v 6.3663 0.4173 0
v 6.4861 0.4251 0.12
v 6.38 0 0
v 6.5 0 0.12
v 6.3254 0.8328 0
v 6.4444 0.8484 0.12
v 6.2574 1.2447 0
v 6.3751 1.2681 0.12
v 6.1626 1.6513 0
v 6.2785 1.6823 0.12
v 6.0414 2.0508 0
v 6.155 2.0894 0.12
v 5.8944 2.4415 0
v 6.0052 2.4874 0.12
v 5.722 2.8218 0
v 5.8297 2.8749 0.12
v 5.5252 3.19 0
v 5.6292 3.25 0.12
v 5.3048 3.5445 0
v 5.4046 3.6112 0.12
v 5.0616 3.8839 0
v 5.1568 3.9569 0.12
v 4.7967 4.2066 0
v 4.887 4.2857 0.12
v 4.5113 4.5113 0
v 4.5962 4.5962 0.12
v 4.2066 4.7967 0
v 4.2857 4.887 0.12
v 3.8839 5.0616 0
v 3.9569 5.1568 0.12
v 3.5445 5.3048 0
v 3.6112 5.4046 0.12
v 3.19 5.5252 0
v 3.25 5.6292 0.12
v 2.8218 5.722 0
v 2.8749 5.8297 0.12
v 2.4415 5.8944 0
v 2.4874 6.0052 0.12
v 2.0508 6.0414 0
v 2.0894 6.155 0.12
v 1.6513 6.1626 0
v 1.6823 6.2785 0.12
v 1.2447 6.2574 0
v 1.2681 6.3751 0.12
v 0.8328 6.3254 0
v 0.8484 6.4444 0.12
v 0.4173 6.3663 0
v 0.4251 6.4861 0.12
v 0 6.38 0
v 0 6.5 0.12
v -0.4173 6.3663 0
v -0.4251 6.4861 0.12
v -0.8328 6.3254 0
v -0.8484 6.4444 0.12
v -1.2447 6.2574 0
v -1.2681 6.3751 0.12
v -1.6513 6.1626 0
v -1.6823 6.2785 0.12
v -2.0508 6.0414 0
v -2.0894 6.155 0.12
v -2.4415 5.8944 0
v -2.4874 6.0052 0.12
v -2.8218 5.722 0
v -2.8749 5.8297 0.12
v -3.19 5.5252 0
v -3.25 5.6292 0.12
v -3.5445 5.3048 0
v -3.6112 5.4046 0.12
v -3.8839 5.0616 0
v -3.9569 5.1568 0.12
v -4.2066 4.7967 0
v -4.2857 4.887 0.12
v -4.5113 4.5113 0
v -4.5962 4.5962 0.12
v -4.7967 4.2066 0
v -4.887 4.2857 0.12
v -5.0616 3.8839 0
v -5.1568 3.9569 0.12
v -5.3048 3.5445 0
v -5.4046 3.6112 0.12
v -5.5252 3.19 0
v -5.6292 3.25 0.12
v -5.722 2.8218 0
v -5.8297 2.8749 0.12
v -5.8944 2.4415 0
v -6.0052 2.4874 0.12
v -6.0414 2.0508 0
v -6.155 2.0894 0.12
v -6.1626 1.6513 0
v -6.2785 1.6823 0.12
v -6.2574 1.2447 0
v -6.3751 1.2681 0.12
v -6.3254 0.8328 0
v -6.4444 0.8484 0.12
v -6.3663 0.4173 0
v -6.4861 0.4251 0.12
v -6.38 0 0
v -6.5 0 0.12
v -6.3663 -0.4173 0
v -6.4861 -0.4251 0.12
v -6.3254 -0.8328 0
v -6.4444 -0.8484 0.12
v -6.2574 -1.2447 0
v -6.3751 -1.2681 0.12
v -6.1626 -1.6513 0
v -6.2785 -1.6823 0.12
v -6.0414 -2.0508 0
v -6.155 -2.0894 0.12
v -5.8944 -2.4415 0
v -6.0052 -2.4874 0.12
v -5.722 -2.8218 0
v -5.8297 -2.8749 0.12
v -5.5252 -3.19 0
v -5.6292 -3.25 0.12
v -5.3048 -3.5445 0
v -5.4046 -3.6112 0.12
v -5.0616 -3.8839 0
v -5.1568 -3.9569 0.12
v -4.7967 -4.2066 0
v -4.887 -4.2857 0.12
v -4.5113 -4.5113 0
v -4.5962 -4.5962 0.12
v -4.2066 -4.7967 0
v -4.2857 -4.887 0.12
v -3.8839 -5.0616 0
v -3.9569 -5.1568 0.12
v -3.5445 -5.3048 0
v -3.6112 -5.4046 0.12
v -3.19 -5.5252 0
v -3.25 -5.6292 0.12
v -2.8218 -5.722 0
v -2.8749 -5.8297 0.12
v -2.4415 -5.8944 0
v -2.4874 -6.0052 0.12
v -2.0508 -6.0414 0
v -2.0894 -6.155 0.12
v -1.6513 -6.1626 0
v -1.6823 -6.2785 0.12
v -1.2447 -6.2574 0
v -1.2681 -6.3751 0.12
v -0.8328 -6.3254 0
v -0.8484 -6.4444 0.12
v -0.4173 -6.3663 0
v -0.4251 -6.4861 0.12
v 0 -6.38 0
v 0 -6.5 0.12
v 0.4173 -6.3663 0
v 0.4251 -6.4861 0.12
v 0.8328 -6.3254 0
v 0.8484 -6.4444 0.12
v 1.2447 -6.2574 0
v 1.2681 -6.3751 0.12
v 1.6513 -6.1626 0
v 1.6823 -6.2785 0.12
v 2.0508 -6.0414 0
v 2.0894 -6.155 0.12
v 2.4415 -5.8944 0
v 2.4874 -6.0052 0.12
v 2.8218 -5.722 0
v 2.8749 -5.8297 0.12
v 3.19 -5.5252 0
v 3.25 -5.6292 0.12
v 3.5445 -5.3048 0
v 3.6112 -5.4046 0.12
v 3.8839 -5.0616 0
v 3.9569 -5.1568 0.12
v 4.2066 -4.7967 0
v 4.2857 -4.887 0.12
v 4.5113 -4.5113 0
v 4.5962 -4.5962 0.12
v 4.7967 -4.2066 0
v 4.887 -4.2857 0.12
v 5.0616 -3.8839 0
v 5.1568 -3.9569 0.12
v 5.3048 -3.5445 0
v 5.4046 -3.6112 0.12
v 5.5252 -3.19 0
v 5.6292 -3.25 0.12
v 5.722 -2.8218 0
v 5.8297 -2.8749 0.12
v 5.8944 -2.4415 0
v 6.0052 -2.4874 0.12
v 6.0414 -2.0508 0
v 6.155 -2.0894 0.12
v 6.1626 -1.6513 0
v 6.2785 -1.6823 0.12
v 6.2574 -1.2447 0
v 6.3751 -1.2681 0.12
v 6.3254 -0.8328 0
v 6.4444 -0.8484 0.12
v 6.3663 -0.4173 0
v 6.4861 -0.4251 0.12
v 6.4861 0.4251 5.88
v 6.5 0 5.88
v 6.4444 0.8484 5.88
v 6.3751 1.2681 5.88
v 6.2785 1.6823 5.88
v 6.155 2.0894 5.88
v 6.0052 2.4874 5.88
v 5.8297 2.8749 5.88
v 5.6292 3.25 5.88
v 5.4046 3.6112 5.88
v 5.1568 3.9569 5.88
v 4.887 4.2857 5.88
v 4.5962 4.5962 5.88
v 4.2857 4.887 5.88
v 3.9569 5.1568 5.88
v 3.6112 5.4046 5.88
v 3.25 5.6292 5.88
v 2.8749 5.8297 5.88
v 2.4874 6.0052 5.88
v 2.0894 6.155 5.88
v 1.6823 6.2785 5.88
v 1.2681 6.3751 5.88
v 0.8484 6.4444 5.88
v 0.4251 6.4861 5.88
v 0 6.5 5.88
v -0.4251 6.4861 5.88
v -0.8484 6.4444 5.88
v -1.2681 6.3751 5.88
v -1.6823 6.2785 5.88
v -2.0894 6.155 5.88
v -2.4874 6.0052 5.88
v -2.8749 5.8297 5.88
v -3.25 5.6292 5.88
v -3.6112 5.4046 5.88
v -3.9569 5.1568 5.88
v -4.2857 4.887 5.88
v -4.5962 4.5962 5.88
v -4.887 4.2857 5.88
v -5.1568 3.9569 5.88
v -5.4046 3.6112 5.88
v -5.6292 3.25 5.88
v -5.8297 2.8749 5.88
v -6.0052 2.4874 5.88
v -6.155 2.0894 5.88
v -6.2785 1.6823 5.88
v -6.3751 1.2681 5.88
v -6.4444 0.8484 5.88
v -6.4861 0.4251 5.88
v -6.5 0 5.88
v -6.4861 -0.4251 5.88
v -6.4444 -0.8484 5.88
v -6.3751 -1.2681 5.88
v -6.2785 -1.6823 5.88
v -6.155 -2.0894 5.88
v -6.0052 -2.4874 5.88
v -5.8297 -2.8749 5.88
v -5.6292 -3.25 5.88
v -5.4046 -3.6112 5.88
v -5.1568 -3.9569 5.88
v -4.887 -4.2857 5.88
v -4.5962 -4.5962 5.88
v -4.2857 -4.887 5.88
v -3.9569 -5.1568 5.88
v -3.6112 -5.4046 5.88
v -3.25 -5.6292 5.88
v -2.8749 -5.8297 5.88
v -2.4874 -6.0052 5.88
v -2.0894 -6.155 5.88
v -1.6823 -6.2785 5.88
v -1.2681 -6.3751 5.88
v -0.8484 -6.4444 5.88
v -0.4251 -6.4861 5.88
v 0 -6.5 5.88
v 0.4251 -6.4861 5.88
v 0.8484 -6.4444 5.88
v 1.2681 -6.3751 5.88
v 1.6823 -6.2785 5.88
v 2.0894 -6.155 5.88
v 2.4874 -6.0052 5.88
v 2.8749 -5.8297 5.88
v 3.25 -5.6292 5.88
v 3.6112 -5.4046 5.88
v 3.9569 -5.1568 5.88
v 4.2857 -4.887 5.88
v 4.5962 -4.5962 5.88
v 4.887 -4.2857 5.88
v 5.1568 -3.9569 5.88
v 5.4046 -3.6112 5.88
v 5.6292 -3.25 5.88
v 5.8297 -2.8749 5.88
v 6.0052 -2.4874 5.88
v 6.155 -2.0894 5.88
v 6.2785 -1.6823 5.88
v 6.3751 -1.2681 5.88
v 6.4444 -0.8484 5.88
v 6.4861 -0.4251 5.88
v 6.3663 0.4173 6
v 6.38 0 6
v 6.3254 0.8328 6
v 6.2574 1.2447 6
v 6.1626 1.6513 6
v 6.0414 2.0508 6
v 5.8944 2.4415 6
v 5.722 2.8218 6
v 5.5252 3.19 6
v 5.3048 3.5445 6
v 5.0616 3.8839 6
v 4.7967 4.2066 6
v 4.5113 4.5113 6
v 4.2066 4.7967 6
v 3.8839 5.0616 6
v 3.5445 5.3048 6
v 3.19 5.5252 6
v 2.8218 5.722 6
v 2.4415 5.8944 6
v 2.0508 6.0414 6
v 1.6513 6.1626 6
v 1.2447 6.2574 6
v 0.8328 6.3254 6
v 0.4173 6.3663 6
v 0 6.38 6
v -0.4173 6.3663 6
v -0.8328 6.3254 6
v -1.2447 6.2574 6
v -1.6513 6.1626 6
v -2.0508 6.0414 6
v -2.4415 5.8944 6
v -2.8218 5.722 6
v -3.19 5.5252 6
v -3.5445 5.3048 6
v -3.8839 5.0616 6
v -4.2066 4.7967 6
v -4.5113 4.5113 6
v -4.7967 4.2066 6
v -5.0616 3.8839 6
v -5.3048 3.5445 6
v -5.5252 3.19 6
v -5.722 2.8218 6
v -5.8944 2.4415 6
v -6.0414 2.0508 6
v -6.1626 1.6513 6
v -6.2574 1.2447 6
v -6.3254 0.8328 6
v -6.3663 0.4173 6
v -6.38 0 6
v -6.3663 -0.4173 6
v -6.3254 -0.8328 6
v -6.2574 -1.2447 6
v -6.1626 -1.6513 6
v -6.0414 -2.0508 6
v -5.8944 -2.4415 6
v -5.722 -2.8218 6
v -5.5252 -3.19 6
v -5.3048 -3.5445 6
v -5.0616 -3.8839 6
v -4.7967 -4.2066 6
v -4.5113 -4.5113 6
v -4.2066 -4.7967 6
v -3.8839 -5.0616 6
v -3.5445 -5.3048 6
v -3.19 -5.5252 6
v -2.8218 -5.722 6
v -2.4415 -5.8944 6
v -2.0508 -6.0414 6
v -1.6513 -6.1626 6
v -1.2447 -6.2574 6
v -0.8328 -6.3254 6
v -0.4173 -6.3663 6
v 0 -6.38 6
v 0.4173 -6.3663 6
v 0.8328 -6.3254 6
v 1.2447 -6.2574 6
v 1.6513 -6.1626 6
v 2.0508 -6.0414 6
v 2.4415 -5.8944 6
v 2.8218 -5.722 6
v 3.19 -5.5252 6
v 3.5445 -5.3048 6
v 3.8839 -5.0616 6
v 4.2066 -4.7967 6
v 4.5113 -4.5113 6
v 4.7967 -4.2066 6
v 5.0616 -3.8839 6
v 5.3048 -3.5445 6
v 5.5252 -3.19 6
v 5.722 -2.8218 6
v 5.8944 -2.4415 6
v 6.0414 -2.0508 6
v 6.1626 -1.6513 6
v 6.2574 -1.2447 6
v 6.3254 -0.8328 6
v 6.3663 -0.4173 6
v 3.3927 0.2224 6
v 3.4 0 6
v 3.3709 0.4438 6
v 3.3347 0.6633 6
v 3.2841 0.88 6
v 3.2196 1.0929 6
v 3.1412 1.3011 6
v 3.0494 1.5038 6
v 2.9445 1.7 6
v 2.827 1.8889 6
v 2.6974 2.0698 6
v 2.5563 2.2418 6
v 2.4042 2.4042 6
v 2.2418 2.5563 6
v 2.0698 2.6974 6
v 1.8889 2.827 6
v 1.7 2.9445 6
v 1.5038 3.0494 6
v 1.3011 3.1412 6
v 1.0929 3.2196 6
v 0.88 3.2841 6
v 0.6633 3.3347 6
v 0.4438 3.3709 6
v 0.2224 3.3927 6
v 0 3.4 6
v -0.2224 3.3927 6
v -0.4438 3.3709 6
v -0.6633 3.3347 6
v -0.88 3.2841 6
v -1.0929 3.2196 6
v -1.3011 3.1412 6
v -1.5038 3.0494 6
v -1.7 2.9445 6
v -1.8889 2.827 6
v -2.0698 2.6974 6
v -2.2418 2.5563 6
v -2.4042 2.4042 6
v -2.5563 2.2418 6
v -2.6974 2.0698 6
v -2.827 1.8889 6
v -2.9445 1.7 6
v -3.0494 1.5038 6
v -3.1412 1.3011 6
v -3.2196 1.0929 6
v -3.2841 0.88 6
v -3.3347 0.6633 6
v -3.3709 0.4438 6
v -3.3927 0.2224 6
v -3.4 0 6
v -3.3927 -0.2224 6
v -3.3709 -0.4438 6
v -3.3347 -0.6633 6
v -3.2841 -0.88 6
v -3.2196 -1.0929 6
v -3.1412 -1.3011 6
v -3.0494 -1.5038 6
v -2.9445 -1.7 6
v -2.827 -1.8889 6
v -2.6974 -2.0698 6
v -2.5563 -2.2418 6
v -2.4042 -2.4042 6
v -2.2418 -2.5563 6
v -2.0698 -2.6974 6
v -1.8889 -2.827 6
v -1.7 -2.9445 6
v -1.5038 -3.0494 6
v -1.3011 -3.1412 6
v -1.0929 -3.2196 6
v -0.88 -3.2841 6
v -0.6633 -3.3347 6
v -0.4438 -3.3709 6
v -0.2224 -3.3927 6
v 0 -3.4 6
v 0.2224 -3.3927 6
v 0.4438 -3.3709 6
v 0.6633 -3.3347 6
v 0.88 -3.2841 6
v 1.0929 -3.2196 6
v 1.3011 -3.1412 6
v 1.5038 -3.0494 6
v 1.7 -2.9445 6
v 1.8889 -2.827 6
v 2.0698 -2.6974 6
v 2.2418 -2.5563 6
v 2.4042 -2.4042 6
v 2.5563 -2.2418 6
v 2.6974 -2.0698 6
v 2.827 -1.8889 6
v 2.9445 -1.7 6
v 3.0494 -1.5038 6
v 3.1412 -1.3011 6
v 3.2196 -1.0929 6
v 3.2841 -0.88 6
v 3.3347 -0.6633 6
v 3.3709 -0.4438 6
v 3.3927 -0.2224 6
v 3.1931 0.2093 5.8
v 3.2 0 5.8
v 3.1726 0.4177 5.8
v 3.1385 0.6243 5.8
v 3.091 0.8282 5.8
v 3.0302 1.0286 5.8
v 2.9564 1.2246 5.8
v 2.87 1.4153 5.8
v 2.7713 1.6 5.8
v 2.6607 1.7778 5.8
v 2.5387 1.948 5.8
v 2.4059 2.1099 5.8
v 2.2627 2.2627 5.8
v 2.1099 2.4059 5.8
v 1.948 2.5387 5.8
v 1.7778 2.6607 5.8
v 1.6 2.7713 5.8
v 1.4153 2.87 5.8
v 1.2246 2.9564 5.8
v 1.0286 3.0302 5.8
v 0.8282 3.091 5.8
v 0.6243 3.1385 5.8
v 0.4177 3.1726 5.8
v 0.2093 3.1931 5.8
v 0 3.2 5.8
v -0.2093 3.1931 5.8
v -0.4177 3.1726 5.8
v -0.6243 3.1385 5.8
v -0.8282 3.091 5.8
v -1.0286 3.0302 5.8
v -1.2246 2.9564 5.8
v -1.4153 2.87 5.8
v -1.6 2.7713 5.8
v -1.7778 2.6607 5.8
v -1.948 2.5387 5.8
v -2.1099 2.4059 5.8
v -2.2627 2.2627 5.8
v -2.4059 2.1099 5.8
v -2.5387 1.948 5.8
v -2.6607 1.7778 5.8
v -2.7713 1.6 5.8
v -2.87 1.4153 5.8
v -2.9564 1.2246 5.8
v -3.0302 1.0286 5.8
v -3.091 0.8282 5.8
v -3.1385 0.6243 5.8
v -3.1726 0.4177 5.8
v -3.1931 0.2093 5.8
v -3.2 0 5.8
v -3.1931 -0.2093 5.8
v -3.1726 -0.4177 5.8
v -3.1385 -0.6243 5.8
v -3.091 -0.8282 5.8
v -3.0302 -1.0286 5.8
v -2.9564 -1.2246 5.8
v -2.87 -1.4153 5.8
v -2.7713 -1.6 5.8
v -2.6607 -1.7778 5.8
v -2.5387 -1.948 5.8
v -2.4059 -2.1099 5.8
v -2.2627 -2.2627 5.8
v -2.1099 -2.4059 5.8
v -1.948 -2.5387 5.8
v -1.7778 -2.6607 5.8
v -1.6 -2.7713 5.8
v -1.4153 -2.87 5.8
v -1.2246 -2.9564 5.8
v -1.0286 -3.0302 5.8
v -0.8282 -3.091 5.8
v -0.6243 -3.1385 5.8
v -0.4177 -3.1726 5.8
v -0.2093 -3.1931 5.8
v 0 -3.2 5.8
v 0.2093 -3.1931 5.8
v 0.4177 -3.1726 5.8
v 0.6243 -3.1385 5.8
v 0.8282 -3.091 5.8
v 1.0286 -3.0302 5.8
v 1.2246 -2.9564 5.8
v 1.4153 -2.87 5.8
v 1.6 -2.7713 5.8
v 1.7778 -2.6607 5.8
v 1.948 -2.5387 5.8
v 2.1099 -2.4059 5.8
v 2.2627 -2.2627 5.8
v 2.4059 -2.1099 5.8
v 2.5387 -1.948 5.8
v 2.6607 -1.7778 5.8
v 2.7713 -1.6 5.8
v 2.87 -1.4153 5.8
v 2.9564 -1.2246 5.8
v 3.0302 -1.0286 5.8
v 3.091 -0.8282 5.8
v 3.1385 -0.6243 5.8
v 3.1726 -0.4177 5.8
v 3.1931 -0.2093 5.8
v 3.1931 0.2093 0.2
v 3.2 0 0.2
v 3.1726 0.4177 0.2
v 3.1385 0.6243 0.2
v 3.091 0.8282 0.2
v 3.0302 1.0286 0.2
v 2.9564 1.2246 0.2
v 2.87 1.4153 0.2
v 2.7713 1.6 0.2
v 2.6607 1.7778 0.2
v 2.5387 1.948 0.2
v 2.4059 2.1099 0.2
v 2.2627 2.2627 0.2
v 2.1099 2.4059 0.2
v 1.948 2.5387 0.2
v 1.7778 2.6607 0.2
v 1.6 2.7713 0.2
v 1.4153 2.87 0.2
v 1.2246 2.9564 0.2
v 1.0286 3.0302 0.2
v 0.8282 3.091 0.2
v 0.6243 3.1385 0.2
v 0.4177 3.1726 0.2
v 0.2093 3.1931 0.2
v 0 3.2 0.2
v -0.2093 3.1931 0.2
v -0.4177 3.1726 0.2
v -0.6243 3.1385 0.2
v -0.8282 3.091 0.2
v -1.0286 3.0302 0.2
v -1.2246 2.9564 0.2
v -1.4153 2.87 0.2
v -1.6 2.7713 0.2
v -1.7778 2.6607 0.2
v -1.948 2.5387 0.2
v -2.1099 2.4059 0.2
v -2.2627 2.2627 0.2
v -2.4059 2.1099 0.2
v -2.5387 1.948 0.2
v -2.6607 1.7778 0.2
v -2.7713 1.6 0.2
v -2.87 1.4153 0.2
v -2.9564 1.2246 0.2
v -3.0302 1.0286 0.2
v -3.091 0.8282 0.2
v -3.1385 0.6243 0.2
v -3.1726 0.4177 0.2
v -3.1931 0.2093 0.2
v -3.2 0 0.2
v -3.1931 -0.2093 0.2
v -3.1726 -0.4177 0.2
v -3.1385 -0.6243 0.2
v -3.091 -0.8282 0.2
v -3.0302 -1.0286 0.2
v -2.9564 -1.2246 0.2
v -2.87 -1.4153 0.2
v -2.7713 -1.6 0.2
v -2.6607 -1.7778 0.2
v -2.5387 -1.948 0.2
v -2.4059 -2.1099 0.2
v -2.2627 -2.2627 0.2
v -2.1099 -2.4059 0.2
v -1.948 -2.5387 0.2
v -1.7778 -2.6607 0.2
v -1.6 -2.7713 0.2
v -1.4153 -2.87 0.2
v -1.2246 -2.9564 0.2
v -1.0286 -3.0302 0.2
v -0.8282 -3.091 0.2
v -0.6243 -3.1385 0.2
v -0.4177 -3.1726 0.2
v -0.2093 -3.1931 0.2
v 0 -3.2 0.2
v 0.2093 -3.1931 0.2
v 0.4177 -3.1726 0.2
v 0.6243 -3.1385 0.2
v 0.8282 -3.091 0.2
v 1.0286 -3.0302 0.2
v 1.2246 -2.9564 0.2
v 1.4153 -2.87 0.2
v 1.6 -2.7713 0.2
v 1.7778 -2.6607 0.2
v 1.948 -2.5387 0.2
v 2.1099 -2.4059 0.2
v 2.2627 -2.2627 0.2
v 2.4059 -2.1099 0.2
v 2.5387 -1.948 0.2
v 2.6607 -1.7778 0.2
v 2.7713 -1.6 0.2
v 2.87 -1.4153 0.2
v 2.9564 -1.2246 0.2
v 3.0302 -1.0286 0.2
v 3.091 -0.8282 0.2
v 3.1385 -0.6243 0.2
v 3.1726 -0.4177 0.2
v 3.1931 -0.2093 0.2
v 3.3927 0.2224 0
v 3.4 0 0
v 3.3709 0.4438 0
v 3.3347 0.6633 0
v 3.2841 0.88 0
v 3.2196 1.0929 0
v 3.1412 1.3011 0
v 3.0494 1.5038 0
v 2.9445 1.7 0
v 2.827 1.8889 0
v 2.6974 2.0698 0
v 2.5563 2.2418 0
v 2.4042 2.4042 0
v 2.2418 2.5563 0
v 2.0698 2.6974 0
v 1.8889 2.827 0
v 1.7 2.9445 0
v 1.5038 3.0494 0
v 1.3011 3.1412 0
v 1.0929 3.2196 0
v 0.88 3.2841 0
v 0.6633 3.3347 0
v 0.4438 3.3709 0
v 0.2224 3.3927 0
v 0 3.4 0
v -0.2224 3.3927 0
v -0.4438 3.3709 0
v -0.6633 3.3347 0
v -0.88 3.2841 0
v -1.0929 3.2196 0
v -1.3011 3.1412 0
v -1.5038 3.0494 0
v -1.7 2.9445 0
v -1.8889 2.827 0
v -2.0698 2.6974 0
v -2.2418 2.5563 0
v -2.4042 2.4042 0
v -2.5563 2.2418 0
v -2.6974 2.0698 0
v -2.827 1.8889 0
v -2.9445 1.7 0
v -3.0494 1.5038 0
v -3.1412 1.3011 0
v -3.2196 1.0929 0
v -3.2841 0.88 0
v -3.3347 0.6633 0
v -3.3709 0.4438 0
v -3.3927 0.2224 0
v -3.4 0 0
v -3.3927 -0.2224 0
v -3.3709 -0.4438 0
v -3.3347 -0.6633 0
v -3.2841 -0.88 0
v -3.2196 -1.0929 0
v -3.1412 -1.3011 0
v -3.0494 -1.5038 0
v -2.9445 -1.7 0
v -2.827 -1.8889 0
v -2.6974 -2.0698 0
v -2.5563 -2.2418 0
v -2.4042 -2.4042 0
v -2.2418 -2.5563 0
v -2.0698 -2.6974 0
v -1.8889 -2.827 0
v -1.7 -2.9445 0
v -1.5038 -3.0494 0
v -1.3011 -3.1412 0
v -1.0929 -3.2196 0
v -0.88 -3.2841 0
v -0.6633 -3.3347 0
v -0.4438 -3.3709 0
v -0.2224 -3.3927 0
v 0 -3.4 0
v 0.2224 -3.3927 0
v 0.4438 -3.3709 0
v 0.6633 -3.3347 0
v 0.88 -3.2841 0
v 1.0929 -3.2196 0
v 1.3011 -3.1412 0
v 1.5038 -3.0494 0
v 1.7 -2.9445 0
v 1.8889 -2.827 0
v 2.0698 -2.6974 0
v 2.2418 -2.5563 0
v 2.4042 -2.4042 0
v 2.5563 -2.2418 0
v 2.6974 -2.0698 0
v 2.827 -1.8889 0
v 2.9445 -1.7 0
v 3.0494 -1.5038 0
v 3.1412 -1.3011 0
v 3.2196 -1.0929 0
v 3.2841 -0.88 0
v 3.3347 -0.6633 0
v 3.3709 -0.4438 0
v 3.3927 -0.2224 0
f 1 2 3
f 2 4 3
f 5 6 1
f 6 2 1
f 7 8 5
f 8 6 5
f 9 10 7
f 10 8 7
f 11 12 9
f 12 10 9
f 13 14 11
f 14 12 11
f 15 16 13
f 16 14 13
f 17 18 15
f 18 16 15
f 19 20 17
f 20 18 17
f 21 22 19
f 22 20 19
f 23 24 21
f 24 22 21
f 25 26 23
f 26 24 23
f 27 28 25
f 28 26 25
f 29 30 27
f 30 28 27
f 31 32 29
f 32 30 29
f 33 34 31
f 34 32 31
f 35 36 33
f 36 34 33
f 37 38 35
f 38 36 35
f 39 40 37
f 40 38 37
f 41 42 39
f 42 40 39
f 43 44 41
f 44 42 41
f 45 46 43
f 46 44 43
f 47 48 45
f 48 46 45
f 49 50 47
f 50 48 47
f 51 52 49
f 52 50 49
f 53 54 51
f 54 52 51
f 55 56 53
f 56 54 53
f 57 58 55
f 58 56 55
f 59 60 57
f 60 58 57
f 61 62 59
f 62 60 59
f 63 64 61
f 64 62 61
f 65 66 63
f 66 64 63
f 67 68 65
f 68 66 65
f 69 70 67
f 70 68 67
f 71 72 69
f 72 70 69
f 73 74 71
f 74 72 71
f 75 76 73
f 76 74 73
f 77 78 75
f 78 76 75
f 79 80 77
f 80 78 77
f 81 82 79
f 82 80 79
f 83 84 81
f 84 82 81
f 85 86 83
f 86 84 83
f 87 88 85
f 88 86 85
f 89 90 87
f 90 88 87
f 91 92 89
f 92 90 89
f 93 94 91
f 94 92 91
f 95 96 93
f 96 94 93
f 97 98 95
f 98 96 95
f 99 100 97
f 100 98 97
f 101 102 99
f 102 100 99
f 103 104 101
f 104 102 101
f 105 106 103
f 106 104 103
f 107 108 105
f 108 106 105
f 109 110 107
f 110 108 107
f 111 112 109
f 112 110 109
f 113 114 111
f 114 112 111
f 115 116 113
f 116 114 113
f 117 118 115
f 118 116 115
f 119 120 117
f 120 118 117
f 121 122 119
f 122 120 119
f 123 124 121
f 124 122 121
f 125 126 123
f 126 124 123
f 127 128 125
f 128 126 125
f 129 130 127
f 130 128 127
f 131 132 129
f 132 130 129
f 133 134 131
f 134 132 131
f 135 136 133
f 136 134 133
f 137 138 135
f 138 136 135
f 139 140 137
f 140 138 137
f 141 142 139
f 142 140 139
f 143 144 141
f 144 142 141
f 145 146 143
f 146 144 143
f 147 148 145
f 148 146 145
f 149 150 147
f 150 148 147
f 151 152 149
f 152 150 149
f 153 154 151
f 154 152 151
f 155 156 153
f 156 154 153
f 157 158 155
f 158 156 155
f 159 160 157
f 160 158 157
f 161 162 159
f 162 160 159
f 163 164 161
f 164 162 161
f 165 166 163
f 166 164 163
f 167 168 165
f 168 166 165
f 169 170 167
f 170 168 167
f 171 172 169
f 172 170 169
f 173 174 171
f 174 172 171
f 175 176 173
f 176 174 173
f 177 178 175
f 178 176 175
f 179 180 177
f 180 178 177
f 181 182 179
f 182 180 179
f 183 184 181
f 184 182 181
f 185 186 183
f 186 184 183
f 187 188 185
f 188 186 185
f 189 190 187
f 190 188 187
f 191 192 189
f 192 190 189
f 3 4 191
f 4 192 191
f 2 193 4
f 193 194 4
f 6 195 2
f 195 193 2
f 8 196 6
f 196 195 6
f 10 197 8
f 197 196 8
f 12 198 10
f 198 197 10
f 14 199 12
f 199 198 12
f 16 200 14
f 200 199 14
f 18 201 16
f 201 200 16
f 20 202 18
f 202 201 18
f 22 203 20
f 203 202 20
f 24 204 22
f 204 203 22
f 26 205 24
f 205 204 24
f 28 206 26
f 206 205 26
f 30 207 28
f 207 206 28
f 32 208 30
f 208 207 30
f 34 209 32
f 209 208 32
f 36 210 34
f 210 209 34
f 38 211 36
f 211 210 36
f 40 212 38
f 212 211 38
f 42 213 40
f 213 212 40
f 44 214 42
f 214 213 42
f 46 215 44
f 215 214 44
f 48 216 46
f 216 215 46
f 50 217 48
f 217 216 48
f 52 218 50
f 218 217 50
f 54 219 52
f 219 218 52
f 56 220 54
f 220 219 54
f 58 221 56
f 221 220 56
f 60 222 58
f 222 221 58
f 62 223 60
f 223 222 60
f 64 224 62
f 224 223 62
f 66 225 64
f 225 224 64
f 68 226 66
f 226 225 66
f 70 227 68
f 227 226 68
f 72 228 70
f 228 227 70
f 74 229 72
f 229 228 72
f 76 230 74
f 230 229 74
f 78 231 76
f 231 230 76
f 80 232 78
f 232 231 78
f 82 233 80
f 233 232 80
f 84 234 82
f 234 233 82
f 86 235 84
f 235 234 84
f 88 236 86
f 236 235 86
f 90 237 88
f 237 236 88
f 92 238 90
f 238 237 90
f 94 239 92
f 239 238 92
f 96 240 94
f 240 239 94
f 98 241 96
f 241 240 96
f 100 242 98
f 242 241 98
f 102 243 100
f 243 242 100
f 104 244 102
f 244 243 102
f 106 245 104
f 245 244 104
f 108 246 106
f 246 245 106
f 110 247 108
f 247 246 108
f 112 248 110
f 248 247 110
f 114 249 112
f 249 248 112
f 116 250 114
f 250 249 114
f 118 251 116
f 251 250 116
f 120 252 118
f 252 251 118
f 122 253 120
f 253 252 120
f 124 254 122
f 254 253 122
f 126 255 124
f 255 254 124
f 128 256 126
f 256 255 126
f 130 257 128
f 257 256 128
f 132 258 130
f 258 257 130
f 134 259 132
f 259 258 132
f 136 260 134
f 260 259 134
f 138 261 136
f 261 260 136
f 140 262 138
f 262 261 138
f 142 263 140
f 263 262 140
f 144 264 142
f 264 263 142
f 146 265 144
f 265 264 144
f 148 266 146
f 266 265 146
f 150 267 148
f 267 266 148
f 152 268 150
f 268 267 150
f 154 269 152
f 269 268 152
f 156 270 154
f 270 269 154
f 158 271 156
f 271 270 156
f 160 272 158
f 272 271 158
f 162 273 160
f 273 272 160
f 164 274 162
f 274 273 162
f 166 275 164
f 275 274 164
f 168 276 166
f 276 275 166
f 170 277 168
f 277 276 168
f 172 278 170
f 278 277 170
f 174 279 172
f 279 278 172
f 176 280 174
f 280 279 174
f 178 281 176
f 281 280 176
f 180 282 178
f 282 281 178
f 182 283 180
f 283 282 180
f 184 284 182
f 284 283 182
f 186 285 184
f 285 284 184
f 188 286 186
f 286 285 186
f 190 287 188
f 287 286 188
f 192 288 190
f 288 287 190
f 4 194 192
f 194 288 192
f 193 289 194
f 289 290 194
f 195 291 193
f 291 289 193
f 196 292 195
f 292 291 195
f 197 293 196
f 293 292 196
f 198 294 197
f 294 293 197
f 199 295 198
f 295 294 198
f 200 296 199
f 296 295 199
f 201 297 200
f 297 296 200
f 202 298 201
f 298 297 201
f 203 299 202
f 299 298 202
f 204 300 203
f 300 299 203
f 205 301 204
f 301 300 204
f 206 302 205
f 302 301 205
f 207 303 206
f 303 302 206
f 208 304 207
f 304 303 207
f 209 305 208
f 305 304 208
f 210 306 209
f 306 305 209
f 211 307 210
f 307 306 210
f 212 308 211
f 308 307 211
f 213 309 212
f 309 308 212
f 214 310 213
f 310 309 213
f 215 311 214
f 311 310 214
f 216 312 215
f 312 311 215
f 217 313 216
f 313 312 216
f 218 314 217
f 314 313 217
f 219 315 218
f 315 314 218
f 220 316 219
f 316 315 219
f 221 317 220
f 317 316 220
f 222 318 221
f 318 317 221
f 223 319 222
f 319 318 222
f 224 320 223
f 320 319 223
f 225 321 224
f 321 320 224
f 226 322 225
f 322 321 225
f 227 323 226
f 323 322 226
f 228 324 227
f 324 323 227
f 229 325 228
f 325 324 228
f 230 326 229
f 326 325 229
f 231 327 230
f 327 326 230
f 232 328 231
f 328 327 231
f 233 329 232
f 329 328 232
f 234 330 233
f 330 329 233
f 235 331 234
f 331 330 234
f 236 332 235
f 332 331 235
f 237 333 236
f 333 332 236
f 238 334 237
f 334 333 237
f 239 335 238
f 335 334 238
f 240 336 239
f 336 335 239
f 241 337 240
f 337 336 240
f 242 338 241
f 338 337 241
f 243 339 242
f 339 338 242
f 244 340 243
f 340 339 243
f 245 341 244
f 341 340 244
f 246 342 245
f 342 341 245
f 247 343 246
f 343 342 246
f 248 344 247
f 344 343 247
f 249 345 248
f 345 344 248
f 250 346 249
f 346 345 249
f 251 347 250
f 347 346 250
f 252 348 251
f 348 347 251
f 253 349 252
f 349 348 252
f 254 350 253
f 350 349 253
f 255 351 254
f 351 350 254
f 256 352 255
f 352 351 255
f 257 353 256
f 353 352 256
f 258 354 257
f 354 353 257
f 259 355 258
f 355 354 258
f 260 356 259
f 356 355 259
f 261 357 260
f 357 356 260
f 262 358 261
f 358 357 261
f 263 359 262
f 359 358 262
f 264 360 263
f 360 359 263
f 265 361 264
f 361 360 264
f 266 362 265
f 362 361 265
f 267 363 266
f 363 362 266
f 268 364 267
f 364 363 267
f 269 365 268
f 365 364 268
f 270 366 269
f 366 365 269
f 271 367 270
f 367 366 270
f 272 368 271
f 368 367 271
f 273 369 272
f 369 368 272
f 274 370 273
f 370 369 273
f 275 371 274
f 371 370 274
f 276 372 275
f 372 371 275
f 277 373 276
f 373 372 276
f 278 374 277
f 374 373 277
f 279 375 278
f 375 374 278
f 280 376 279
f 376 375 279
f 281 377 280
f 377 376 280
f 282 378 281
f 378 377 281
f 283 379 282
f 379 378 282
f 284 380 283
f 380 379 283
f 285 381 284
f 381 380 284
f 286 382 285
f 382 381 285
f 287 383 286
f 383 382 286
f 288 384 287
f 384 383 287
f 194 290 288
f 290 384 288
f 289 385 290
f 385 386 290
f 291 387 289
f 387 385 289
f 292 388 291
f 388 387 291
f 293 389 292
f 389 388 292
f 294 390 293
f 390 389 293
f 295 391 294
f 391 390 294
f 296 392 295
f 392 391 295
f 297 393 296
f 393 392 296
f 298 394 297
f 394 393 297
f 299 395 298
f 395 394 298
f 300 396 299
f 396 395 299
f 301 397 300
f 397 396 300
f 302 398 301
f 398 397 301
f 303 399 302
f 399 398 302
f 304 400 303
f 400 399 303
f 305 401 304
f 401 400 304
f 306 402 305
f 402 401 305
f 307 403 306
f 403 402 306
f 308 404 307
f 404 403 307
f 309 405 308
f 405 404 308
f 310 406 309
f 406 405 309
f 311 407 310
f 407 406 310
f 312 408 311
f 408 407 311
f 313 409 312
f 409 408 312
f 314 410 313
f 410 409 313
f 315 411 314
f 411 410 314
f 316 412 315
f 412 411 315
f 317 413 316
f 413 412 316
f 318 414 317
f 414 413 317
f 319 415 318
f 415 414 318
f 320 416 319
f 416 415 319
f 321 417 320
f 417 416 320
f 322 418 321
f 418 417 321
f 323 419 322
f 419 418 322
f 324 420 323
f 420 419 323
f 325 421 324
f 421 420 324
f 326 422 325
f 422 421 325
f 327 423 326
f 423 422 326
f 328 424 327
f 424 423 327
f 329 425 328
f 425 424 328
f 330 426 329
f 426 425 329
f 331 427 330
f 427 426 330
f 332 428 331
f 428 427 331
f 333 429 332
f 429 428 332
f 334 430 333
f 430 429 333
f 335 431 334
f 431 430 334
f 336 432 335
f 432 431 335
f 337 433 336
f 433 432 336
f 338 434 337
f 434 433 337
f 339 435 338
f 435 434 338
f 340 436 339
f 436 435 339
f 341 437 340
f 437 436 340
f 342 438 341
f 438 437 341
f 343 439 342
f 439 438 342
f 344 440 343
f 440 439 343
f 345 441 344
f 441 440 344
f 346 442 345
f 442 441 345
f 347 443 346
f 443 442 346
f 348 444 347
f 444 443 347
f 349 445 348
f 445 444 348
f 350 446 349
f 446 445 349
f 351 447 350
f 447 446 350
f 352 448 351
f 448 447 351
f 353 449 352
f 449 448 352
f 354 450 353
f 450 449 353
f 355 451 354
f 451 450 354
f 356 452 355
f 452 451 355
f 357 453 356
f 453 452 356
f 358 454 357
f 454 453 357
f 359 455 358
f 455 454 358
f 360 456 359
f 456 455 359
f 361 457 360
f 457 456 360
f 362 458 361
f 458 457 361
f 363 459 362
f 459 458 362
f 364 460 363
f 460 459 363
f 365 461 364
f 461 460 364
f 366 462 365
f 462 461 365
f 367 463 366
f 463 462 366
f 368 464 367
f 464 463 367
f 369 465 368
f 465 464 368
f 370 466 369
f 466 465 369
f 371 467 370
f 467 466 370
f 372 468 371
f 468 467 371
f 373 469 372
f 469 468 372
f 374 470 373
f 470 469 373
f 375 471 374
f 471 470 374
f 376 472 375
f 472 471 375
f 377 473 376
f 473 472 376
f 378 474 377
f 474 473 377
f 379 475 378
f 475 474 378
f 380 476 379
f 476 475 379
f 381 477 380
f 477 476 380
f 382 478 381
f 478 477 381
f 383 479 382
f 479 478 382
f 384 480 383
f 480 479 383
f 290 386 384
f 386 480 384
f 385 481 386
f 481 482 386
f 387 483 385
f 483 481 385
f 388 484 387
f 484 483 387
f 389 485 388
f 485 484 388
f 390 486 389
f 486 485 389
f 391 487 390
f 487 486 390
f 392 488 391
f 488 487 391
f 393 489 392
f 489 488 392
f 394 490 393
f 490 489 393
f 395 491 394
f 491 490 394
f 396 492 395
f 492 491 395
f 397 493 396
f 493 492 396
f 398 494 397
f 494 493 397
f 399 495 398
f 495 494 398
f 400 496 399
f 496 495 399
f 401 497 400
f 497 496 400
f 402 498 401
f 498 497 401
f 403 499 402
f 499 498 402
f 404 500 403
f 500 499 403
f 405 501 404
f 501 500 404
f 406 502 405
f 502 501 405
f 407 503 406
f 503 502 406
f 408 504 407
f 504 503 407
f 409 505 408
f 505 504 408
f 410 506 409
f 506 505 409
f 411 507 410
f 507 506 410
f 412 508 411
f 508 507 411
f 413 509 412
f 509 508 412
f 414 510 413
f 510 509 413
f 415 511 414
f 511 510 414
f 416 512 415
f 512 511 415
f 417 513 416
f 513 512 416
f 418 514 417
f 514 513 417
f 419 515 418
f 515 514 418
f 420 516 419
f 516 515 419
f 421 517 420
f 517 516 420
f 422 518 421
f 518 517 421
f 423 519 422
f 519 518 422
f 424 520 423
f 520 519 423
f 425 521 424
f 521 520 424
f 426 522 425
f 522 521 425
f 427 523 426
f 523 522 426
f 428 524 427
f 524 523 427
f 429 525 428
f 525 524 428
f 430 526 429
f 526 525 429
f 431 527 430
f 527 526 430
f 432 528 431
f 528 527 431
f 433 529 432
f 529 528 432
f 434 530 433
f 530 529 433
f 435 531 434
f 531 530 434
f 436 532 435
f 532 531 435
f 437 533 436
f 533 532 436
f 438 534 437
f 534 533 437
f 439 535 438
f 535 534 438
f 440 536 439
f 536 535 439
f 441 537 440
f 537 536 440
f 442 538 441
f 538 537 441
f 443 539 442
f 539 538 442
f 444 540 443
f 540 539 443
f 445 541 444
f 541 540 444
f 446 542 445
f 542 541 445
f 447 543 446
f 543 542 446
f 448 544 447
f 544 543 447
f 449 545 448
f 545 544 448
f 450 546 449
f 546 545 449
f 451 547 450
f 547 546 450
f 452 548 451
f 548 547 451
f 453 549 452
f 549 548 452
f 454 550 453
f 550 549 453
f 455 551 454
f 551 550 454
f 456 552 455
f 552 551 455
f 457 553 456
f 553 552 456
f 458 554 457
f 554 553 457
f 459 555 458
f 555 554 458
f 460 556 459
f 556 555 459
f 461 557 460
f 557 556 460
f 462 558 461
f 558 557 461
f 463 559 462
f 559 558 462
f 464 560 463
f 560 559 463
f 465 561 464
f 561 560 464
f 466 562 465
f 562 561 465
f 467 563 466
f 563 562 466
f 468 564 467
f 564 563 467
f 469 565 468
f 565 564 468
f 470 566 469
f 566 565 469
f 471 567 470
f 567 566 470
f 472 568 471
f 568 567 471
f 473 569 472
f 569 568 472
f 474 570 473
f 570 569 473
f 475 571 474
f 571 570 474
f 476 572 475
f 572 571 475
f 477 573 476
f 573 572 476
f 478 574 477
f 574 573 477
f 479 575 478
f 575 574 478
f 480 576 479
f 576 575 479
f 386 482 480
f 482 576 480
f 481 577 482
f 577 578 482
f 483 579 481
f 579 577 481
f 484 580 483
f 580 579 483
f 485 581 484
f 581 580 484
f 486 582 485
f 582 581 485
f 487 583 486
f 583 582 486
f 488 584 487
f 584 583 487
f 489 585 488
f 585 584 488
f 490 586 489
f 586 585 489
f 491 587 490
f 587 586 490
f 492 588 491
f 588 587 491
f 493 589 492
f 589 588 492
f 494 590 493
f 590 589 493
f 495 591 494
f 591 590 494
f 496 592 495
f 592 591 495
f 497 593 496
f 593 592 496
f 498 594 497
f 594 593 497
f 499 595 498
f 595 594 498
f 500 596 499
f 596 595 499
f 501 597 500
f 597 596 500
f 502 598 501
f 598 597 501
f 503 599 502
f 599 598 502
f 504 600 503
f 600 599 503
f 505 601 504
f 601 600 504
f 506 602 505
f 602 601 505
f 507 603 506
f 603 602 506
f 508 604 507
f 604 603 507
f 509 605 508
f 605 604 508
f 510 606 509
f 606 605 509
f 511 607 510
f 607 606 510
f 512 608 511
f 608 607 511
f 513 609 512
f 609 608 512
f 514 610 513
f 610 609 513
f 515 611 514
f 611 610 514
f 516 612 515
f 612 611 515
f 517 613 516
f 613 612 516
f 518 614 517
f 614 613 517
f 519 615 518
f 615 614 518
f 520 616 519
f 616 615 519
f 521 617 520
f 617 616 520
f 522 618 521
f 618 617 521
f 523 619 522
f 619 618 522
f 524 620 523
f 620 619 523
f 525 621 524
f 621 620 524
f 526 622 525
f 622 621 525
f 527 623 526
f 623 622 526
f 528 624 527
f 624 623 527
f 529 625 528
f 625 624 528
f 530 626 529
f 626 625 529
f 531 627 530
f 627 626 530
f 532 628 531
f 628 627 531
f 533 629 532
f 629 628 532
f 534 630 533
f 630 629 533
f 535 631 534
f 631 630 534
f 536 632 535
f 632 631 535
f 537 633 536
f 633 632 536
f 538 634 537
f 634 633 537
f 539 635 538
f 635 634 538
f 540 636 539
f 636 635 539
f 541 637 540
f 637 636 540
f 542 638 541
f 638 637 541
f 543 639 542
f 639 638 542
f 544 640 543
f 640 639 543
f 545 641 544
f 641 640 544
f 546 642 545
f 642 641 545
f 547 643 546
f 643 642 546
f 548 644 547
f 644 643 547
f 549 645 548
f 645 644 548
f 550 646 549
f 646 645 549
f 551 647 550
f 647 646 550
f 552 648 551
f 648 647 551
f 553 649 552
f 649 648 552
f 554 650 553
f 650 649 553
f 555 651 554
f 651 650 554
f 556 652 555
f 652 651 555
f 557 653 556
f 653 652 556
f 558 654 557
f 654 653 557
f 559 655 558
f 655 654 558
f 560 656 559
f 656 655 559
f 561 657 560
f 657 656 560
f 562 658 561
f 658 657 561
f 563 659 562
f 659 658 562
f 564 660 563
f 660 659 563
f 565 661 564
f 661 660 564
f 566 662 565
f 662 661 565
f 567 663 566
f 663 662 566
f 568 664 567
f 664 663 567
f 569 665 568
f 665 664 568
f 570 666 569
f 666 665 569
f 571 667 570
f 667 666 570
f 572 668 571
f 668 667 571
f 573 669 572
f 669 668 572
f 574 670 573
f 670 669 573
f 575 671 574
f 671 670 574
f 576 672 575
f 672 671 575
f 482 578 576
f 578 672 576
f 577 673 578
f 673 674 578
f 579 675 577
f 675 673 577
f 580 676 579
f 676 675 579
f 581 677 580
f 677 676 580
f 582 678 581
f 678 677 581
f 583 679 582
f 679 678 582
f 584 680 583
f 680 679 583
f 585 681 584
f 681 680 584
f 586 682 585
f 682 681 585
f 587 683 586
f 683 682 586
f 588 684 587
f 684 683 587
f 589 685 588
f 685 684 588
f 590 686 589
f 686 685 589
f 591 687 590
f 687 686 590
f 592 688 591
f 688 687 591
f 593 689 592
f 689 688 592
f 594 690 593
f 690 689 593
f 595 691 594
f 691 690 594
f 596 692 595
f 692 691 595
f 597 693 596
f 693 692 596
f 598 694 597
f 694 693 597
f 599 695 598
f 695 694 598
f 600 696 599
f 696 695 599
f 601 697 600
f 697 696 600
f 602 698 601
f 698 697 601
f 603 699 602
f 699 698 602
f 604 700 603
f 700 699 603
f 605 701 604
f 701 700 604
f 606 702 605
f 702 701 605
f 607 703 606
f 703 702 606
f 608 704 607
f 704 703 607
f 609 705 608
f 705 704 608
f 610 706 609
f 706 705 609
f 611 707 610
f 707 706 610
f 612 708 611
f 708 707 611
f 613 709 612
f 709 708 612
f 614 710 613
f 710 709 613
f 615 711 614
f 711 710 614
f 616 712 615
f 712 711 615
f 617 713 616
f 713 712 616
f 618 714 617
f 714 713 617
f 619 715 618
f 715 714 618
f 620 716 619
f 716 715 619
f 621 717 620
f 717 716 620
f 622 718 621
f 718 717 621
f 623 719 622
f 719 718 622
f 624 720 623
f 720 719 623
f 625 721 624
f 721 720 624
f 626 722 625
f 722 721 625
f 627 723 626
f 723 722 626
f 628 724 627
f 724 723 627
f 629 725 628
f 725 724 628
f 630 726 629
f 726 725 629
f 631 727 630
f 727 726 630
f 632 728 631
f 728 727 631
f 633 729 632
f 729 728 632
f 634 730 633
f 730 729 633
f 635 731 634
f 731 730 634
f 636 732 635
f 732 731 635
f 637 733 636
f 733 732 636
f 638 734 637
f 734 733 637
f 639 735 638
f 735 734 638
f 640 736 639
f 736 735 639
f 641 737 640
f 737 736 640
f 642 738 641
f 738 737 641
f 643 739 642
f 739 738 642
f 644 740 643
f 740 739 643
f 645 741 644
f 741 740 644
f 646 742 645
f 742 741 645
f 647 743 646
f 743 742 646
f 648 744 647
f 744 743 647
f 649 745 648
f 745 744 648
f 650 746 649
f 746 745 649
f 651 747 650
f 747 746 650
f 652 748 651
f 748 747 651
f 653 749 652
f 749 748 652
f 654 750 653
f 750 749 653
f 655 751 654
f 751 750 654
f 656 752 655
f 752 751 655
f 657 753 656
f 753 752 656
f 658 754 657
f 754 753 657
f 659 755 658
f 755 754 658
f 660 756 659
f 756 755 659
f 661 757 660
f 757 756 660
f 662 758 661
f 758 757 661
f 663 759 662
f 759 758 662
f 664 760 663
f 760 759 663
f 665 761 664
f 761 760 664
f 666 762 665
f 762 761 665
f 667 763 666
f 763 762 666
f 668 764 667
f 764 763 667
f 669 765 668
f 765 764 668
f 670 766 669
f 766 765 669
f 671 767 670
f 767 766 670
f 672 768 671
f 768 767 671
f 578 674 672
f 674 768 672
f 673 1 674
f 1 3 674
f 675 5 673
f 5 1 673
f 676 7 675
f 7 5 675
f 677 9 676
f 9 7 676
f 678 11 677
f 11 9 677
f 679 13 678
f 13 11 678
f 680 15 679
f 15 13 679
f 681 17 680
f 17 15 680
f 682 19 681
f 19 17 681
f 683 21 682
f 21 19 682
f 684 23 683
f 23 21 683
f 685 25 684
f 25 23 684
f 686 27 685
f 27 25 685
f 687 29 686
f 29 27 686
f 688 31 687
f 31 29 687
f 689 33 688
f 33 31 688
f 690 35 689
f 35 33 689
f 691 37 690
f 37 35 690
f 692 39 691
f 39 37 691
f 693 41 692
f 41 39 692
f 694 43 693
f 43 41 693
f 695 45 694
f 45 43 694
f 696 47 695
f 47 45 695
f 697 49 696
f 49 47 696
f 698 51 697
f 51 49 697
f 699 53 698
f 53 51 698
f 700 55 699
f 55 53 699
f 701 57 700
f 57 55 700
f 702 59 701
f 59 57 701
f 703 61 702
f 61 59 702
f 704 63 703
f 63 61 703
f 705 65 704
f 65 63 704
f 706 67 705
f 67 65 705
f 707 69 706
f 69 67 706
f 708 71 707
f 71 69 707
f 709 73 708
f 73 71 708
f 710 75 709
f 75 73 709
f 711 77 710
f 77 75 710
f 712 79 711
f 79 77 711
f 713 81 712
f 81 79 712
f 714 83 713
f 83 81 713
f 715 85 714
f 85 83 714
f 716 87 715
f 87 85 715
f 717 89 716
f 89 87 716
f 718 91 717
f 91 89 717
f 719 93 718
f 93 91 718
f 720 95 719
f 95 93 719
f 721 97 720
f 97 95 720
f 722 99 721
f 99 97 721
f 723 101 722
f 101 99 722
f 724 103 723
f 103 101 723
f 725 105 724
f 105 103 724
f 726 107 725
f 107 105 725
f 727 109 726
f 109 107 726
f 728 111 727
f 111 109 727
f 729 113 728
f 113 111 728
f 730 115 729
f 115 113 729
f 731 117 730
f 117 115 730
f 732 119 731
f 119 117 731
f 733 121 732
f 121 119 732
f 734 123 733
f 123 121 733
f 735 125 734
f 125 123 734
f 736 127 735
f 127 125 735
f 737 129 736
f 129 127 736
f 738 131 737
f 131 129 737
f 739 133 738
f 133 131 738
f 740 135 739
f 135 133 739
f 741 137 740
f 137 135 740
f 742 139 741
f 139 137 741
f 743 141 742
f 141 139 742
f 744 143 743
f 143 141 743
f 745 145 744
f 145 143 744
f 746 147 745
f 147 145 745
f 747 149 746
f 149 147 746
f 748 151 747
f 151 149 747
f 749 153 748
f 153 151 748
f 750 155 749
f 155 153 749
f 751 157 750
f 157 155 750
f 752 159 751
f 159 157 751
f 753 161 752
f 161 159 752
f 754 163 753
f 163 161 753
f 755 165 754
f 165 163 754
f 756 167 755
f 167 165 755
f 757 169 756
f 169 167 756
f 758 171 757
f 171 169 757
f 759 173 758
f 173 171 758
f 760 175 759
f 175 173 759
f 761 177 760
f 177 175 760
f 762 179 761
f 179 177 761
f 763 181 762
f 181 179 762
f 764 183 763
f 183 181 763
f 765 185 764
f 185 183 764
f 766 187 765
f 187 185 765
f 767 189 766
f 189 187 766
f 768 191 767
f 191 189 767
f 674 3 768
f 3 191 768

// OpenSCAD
// OOMP generic catalogue model; units: mm.
// Stud length is additional to body depth. Tapping depths are model assumptions.
variant = "full"; // [full, display]
family = "spacer";
connection_type = "plain";
depth_mm = 6;
stud_length_mm = 0;
tapped_depth_mm = 0;
bore_mm = 6.4;
outer_diameter_mm = 13;
across_flats_mm = 6;
thread_nominal_diameter_mm = 3;
thread_pitch_mm = 0.5;
edge_chamfer_mm = 0.12;
mouth_chamfer_mm = 0.2;
angular_segments = 96;
samples_per_pitch = 16;

// Boundary travels up the outside, then down any tapped/plain bore.
// Equal-height rings at shoulders form the annular shoulder faces.
n = angular_segments;
threaded = family == "standoff";
has_stud = connection_type == "stud_to_tapped" || connection_type == "stud_to_stud";
two_studs = connection_type == "stud_to_stud";
through = !threaded || connection_type == "tapped_to_tapped";
pitch = thread_pitch_mm;
diameter = threaded ? thread_nominal_diameter_mm : bore_mm;
minor = diameter - 5*sqrt(3)*pitch/8;
transition = mouth_chamfer_mm + (threaded ? 5*sqrt(3)*pitch/16 : 0);
tip_chamfer = mouth_chamfer_mm + 17*sqrt(3)*pitch/48;
function sorted(v) = len(v)<=1 ? v : let(p=v[0])
    concat(sorted([for(x=v) if(x<p-1e-8) x]), [p], sorted([for(x=v) if(x>p+1e-8) x]));
function reverse(v) = [for(i=[len(v)-1:-1:0]) v[i]];
function theta(i) = i*360/n;
function fract(x) = x-floor(x);
function phase_distance(i,z) = abs(fract(z/pitch-theta(i)/360+0.5)-0.5);
function thread_r(i,z) = minor/2 + min(5*sqrt(3)*pitch/16,
    max(0,(phase_distance(i,z)-0.125)*pitch*sqrt(3)));
function stud_r(i,z,tip) = min(diameter/2 - (variant=="full" ?
    min(17*sqrt(3)*pitch/48,max(0,(phase_distance(i,z)-0.0625)*pitch*sqrt(3))) : 0),
    diameter/2-tip_chamfer+abs(z-tip));
function body_r(i,z) = (threaded ? across_flats_mm/2/cos(theta(i)%60-30) : outer_diameter_mm/2)
    - max(0,edge_chamfer_mm-min(z,depth_mm-z));
function bore_r(i,z) = max(threaded ? (variant=="full" ? thread_r(i,z) : minor/2) : diameter/2,
    diameter/2+mouth_chamfer_mm-(through ? min(z,depth_mm-z) : depth_mm-z));
function stud_z(a,b,tip) = let(count=variant=="full" ? ceil(stud_length_mm/pitch*samples_per_pitch) : 1)
    sorted(concat([for(i=[0:count]) a+(b-a)*i/count], [tip==a ? tip+tip_chamfer : tip-tip_chamfer]));
body_z = sorted([0,edge_chamfer_mm,depth_mm-edge_chamfer_mm,depth_mm]);
low = through ? 0 : depth_mm-tapped_depth_mm;
count = threaded && variant=="full" ? ceil((depth_mm-low)/pitch*samples_per_pitch) : 1;
bore_z = two_studs ? [] : reverse(sorted(concat(
    [for(i=[0:count]) low+(depth_mm-low)*i/count],
    [depth_mm-mouth_chamfer_mm,depth_mm-transition],
    through ? [mouth_chamfer_mm,transition] : [])));
// Ring descriptors: [height, kind, tip]. Kind: 0 body, 1 stud, 2 bore.
rings = concat(
    has_stud ? [for(z=stud_z(-stud_length_mm,0,-stud_length_mm)) [z,1,-stud_length_mm]] : [],
    [for(z=body_z) [z,0,0]],
    two_studs ? [for(z=stud_z(depth_mm,depth_mm+stud_length_mm,depth_mm+stud_length_mm)) [z,1,depth_mm+stud_length_mm]] : [],
    [for(z=bore_z) [z,2,0]]);
function radius(i,ring) = ring[1]==0 ? body_r(i,ring[0]) :
    ring[1]==1 ? stud_r(i,ring[0],ring[2]) : bore_r(i,ring[0]);
points = concat([for(ring=rings) for(i=[0:n-1])
    [radius(i,ring)*cos(theta(i)),radius(i,ring)*sin(theta(i)),ring[0]]],
    through ? [] : [[0,0,rings[0][0]],[0,0,rings[len(rings)-1][0]]]);
center = len(rings)*n;
last = (len(rings)-1)*n;
// OpenSCAD winding is opposite to STL winding.
faces = concat(
    [for(j=[0:len(rings)-(through ? 1 : 2)]) for(i=[0:n-1]) each
        let(a=j*n+i,b=j*n+(i+1)%n,c=((j+1)%len(rings))*n+(i+1)%n,d=((j+1)%len(rings))*n+i)
        [[a,c,b],[a,d,c]]],
    through ? [] : [for(i=[0:n-1]) each let(k=(i+1)%n)
        [[center,i,k],[center+1,last+k,last+i]]]);
assert(family=="spacer" || family=="standoff");
assert(!threaded || connection_type=="tapped_to_tapped" || has_stud);
assert(depth_mm>0 && diameter>0 && pitch>0);
assert(variant=="full" || variant=="display");
assert(n>=24 && n%12==0 && samples_per_pitch>=8);
assert(mouth_chamfer_mm>0 && mouth_chamfer_mm<depth_mm/2);
assert(edge_chamfer_mm>=0 && edge_chamfer_mm<depth_mm/2);
assert(diameter+4*max(mouth_chamfer_mm,edge_chamfer_mm) < (threaded ? across_flats_mm : outer_diameter_mm));
assert(!has_stud || stud_length_mm>2*mouth_chamfer_mm);
assert(!through || !threaded || 2*transition<depth_mm);
assert(connection_type!="stud_to_tapped" || (tapped_depth_mm>transition && tapped_depth_mm<depth_mm));
color([0.86,0.85,0.81]) polyhedron(points=points,faces=faces,convexity=20);
